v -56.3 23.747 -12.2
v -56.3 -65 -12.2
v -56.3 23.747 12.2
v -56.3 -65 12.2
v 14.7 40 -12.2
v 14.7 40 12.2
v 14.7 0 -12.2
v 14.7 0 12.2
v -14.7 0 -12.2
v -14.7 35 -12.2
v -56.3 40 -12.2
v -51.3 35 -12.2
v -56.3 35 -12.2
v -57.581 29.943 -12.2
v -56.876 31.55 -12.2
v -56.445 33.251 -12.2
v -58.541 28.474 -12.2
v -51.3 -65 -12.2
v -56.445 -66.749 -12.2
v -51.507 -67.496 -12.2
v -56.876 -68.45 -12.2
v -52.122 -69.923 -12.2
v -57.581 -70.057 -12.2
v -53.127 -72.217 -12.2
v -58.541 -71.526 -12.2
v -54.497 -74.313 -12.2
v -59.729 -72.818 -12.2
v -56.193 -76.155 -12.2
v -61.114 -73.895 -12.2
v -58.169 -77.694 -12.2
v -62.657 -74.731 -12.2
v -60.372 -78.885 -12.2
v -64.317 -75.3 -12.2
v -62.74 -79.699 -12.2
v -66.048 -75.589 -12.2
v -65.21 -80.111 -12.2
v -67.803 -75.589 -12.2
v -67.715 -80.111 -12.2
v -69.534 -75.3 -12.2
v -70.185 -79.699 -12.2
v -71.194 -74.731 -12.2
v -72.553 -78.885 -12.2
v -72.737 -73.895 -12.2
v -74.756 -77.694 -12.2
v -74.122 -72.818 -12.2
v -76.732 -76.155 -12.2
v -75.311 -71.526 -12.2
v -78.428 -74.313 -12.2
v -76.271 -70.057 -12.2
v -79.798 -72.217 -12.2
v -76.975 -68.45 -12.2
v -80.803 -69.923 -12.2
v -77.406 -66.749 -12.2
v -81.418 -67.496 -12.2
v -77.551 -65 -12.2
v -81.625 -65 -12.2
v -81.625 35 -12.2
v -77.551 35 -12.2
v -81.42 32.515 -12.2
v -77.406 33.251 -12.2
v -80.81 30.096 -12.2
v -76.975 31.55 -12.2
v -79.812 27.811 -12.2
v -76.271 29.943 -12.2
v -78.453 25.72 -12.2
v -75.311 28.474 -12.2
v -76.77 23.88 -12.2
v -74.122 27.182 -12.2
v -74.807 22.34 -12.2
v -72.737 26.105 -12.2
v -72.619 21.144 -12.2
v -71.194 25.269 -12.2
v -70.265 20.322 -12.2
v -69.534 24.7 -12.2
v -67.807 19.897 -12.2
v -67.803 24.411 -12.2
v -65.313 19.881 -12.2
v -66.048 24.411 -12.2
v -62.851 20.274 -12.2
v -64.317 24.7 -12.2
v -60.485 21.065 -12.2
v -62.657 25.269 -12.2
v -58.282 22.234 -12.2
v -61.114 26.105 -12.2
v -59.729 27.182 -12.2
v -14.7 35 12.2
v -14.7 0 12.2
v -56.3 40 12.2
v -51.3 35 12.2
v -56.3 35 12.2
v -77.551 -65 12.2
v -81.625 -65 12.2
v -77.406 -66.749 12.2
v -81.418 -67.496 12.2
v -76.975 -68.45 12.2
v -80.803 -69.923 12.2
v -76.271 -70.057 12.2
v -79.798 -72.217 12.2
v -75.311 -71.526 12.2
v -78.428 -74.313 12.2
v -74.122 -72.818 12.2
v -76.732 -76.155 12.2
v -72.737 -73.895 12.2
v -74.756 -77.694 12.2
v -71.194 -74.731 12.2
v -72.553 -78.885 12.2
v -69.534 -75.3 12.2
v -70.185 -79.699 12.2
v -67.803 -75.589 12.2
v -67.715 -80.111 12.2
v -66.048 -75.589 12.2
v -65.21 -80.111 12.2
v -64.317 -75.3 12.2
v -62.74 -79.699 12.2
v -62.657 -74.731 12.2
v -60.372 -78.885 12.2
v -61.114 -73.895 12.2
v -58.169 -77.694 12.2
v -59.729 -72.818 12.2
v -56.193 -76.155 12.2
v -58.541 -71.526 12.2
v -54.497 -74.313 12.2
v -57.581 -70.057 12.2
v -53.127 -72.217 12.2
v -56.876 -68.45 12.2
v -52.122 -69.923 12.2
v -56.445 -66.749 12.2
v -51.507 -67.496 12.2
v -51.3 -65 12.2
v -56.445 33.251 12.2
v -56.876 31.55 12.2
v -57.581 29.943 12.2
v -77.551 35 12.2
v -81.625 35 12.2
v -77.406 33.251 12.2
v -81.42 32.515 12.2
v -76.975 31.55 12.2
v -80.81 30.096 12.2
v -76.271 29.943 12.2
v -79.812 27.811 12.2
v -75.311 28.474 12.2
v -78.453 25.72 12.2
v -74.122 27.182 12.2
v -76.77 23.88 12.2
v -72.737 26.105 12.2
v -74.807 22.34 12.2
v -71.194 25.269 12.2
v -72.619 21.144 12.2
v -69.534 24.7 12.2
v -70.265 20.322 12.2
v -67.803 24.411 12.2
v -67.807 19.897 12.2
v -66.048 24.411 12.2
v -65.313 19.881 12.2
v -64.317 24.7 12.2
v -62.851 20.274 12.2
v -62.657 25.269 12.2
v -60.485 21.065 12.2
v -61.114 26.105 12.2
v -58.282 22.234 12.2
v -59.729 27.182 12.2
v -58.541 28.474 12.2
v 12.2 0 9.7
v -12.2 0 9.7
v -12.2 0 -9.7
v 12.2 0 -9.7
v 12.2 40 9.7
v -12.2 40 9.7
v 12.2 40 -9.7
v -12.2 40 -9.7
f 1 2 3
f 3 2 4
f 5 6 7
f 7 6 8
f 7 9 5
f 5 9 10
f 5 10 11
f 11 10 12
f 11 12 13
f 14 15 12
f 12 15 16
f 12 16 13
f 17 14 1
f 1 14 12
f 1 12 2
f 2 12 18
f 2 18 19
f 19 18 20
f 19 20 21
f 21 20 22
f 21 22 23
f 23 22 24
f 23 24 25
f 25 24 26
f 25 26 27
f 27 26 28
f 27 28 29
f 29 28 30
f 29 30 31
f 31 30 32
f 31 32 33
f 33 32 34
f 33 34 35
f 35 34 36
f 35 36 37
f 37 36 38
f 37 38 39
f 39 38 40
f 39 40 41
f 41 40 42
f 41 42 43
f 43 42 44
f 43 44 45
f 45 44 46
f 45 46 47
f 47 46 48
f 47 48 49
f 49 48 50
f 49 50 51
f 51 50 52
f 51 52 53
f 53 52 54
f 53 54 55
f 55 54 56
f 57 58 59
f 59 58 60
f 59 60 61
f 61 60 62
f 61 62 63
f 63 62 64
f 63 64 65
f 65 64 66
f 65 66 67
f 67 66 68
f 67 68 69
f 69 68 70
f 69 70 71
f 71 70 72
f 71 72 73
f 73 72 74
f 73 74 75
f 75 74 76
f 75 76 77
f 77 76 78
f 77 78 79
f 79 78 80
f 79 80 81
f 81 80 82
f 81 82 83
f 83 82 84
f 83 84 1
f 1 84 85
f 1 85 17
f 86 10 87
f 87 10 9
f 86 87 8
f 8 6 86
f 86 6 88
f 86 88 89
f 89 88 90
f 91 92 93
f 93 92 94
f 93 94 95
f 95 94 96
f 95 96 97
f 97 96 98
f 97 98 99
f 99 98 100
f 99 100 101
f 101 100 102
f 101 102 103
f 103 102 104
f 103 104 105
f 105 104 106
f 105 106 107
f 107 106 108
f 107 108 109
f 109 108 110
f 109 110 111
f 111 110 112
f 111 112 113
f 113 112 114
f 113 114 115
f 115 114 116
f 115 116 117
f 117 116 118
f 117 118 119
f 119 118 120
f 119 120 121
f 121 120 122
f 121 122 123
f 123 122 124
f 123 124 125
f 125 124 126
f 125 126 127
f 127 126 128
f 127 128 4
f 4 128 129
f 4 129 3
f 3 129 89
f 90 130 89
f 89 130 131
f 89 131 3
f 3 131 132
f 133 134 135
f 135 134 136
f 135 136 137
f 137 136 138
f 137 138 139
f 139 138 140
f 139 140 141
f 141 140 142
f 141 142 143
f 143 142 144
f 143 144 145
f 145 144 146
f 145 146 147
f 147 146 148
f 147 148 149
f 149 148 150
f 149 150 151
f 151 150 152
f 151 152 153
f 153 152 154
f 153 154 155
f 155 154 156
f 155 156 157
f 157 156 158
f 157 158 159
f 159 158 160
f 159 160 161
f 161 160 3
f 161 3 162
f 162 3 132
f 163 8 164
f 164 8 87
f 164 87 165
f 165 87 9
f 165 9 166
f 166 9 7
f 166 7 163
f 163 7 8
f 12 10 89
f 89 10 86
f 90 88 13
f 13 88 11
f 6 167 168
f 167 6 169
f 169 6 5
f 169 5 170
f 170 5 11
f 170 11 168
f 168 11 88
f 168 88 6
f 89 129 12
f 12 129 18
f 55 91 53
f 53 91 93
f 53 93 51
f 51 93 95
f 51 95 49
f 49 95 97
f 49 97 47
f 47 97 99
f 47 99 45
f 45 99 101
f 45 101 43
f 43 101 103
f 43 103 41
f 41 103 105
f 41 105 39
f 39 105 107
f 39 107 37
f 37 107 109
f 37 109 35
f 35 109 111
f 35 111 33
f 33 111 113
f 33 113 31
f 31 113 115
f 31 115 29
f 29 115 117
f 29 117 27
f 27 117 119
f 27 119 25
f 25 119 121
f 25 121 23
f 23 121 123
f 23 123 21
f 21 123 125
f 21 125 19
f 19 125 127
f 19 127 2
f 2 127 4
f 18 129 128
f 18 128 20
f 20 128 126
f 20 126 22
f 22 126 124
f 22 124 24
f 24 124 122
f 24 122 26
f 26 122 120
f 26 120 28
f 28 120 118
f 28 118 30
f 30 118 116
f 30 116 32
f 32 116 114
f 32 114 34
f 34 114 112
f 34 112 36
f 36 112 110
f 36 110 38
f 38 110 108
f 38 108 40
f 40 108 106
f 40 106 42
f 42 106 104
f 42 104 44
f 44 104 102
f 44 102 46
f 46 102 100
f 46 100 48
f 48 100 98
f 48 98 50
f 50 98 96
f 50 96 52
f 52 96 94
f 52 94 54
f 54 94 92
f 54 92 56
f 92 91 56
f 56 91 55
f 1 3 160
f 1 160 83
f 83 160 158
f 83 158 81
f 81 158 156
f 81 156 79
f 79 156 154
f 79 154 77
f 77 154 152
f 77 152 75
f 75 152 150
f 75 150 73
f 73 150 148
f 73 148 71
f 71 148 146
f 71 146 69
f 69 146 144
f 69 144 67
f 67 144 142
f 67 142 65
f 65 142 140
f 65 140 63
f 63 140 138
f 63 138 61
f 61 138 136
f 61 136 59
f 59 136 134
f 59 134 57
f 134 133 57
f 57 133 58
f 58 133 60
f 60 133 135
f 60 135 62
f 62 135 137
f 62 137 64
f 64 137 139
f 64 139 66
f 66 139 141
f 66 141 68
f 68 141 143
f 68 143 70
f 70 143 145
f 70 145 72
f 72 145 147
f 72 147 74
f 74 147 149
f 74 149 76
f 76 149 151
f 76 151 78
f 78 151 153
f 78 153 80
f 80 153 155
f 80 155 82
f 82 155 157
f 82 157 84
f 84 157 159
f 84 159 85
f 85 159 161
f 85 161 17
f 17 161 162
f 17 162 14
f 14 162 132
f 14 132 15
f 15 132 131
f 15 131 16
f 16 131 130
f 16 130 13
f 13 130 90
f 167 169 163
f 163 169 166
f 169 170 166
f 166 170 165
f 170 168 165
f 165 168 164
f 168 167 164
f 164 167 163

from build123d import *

# Parameters (mm, degrees)
SKETCH2_W               = 29.4
SKETCH2_H               = 24.4
BOSS_EXTRUDE1_DEPTH     = 35
SKETCH4_W               = 71
SKETCH4_H               = 24.4
BOSS_EXTRUDE2_DEPTH     = 5
SKETCH5_W               = 5
SKETCH5_H               = 100
BOSS_EXTRUDE3_DEPTH     = 24.4
BOSS_EXTRUDE5_DEPTH     = 24.4
CUT_EXTRUDE1_DEPTH      = 116.054406213
CUT_EXTRUDE1_DEPTH_BACK = 116.054406213
SKETCH3_W               = 24.4
SKETCH3_H               = 19.4


with BuildPart() as part:
    # Sketch2 → Boss-Extrude1 (new body)
    with BuildSketch(Plane(origin=(0, 0, 0), x_dir=(1, 0, 0), z_dir=(0, 1, 0))):
        Rectangle(SKETCH2_W, SKETCH2_H)
    extrude(amount=BOSS_EXTRUDE1_DEPTH)

    # Sketch4 → Boss-Extrude2 (add)
    with BuildSketch(Plane(origin=(0, 35, 0), x_dir=(1, 0, 0), z_dir=(0, 1, 0))):
        with Locations((-20.8, 0)):
            Rectangle(SKETCH4_W, SKETCH4_H)
    extrude(amount=BOSS_EXTRUDE2_DEPTH)

    # Sketch5 → Boss-Extrude3 (add)
    with BuildSketch(Plane.XY.offset(12.2)):
        with Locations((-53.8, -15)):
            Rectangle(SKETCH5_W, SKETCH5_H)
    extrude(amount=-BOSS_EXTRUDE3_DEPTH)

    # Sketch7 → Boss-Extrude5 (add)
    with BuildSketch(Plane.XY.offset(12.2)):
        with BuildLine():
            Line((-51.3, -65), (-56.3, -65))
            ThreePointArc((-56.3, -65), (-66.925596508, -75.625596508), (-77.551193015, -65))
            Line((-77.551193015, -65), (-81.625038444, -65))
            ThreePointArc((-81.625038444, -65), (-66.462519222, -80.162519222), (-51.3, -65))
        make_face()
        with BuildLine():
            Line((-81.625038444, 35), (-77.551193015, 35))
            ThreePointArc((-77.551193015, 35), (-66.925596508, 24.374403492), (-56.3, 35))
            Line((-56.3, 35), (-51.3, 35))
            ThreePointArc((-51.3, 35), (-66.462519222, 19.837480778), (-81.625038444, 35))
        make_face()
    extrude(amount=-BOSS_EXTRUDE5_DEPTH)

    # Sketch3 → Cut-Extrude1 (cut, two sides: drawn at the far end of the back side and taken through both)
    with BuildSketch(Plane.XZ.offset(-CUT_EXTRUDE1_DEPTH_BACK)):
        Rectangle(SKETCH3_W, SKETCH3_H)
    extrude(amount=CUT_EXTRUDE1_DEPTH + CUT_EXTRUDE1_DEPTH_BACK, mode=Mode.SUBTRACT)


solid = part.part
